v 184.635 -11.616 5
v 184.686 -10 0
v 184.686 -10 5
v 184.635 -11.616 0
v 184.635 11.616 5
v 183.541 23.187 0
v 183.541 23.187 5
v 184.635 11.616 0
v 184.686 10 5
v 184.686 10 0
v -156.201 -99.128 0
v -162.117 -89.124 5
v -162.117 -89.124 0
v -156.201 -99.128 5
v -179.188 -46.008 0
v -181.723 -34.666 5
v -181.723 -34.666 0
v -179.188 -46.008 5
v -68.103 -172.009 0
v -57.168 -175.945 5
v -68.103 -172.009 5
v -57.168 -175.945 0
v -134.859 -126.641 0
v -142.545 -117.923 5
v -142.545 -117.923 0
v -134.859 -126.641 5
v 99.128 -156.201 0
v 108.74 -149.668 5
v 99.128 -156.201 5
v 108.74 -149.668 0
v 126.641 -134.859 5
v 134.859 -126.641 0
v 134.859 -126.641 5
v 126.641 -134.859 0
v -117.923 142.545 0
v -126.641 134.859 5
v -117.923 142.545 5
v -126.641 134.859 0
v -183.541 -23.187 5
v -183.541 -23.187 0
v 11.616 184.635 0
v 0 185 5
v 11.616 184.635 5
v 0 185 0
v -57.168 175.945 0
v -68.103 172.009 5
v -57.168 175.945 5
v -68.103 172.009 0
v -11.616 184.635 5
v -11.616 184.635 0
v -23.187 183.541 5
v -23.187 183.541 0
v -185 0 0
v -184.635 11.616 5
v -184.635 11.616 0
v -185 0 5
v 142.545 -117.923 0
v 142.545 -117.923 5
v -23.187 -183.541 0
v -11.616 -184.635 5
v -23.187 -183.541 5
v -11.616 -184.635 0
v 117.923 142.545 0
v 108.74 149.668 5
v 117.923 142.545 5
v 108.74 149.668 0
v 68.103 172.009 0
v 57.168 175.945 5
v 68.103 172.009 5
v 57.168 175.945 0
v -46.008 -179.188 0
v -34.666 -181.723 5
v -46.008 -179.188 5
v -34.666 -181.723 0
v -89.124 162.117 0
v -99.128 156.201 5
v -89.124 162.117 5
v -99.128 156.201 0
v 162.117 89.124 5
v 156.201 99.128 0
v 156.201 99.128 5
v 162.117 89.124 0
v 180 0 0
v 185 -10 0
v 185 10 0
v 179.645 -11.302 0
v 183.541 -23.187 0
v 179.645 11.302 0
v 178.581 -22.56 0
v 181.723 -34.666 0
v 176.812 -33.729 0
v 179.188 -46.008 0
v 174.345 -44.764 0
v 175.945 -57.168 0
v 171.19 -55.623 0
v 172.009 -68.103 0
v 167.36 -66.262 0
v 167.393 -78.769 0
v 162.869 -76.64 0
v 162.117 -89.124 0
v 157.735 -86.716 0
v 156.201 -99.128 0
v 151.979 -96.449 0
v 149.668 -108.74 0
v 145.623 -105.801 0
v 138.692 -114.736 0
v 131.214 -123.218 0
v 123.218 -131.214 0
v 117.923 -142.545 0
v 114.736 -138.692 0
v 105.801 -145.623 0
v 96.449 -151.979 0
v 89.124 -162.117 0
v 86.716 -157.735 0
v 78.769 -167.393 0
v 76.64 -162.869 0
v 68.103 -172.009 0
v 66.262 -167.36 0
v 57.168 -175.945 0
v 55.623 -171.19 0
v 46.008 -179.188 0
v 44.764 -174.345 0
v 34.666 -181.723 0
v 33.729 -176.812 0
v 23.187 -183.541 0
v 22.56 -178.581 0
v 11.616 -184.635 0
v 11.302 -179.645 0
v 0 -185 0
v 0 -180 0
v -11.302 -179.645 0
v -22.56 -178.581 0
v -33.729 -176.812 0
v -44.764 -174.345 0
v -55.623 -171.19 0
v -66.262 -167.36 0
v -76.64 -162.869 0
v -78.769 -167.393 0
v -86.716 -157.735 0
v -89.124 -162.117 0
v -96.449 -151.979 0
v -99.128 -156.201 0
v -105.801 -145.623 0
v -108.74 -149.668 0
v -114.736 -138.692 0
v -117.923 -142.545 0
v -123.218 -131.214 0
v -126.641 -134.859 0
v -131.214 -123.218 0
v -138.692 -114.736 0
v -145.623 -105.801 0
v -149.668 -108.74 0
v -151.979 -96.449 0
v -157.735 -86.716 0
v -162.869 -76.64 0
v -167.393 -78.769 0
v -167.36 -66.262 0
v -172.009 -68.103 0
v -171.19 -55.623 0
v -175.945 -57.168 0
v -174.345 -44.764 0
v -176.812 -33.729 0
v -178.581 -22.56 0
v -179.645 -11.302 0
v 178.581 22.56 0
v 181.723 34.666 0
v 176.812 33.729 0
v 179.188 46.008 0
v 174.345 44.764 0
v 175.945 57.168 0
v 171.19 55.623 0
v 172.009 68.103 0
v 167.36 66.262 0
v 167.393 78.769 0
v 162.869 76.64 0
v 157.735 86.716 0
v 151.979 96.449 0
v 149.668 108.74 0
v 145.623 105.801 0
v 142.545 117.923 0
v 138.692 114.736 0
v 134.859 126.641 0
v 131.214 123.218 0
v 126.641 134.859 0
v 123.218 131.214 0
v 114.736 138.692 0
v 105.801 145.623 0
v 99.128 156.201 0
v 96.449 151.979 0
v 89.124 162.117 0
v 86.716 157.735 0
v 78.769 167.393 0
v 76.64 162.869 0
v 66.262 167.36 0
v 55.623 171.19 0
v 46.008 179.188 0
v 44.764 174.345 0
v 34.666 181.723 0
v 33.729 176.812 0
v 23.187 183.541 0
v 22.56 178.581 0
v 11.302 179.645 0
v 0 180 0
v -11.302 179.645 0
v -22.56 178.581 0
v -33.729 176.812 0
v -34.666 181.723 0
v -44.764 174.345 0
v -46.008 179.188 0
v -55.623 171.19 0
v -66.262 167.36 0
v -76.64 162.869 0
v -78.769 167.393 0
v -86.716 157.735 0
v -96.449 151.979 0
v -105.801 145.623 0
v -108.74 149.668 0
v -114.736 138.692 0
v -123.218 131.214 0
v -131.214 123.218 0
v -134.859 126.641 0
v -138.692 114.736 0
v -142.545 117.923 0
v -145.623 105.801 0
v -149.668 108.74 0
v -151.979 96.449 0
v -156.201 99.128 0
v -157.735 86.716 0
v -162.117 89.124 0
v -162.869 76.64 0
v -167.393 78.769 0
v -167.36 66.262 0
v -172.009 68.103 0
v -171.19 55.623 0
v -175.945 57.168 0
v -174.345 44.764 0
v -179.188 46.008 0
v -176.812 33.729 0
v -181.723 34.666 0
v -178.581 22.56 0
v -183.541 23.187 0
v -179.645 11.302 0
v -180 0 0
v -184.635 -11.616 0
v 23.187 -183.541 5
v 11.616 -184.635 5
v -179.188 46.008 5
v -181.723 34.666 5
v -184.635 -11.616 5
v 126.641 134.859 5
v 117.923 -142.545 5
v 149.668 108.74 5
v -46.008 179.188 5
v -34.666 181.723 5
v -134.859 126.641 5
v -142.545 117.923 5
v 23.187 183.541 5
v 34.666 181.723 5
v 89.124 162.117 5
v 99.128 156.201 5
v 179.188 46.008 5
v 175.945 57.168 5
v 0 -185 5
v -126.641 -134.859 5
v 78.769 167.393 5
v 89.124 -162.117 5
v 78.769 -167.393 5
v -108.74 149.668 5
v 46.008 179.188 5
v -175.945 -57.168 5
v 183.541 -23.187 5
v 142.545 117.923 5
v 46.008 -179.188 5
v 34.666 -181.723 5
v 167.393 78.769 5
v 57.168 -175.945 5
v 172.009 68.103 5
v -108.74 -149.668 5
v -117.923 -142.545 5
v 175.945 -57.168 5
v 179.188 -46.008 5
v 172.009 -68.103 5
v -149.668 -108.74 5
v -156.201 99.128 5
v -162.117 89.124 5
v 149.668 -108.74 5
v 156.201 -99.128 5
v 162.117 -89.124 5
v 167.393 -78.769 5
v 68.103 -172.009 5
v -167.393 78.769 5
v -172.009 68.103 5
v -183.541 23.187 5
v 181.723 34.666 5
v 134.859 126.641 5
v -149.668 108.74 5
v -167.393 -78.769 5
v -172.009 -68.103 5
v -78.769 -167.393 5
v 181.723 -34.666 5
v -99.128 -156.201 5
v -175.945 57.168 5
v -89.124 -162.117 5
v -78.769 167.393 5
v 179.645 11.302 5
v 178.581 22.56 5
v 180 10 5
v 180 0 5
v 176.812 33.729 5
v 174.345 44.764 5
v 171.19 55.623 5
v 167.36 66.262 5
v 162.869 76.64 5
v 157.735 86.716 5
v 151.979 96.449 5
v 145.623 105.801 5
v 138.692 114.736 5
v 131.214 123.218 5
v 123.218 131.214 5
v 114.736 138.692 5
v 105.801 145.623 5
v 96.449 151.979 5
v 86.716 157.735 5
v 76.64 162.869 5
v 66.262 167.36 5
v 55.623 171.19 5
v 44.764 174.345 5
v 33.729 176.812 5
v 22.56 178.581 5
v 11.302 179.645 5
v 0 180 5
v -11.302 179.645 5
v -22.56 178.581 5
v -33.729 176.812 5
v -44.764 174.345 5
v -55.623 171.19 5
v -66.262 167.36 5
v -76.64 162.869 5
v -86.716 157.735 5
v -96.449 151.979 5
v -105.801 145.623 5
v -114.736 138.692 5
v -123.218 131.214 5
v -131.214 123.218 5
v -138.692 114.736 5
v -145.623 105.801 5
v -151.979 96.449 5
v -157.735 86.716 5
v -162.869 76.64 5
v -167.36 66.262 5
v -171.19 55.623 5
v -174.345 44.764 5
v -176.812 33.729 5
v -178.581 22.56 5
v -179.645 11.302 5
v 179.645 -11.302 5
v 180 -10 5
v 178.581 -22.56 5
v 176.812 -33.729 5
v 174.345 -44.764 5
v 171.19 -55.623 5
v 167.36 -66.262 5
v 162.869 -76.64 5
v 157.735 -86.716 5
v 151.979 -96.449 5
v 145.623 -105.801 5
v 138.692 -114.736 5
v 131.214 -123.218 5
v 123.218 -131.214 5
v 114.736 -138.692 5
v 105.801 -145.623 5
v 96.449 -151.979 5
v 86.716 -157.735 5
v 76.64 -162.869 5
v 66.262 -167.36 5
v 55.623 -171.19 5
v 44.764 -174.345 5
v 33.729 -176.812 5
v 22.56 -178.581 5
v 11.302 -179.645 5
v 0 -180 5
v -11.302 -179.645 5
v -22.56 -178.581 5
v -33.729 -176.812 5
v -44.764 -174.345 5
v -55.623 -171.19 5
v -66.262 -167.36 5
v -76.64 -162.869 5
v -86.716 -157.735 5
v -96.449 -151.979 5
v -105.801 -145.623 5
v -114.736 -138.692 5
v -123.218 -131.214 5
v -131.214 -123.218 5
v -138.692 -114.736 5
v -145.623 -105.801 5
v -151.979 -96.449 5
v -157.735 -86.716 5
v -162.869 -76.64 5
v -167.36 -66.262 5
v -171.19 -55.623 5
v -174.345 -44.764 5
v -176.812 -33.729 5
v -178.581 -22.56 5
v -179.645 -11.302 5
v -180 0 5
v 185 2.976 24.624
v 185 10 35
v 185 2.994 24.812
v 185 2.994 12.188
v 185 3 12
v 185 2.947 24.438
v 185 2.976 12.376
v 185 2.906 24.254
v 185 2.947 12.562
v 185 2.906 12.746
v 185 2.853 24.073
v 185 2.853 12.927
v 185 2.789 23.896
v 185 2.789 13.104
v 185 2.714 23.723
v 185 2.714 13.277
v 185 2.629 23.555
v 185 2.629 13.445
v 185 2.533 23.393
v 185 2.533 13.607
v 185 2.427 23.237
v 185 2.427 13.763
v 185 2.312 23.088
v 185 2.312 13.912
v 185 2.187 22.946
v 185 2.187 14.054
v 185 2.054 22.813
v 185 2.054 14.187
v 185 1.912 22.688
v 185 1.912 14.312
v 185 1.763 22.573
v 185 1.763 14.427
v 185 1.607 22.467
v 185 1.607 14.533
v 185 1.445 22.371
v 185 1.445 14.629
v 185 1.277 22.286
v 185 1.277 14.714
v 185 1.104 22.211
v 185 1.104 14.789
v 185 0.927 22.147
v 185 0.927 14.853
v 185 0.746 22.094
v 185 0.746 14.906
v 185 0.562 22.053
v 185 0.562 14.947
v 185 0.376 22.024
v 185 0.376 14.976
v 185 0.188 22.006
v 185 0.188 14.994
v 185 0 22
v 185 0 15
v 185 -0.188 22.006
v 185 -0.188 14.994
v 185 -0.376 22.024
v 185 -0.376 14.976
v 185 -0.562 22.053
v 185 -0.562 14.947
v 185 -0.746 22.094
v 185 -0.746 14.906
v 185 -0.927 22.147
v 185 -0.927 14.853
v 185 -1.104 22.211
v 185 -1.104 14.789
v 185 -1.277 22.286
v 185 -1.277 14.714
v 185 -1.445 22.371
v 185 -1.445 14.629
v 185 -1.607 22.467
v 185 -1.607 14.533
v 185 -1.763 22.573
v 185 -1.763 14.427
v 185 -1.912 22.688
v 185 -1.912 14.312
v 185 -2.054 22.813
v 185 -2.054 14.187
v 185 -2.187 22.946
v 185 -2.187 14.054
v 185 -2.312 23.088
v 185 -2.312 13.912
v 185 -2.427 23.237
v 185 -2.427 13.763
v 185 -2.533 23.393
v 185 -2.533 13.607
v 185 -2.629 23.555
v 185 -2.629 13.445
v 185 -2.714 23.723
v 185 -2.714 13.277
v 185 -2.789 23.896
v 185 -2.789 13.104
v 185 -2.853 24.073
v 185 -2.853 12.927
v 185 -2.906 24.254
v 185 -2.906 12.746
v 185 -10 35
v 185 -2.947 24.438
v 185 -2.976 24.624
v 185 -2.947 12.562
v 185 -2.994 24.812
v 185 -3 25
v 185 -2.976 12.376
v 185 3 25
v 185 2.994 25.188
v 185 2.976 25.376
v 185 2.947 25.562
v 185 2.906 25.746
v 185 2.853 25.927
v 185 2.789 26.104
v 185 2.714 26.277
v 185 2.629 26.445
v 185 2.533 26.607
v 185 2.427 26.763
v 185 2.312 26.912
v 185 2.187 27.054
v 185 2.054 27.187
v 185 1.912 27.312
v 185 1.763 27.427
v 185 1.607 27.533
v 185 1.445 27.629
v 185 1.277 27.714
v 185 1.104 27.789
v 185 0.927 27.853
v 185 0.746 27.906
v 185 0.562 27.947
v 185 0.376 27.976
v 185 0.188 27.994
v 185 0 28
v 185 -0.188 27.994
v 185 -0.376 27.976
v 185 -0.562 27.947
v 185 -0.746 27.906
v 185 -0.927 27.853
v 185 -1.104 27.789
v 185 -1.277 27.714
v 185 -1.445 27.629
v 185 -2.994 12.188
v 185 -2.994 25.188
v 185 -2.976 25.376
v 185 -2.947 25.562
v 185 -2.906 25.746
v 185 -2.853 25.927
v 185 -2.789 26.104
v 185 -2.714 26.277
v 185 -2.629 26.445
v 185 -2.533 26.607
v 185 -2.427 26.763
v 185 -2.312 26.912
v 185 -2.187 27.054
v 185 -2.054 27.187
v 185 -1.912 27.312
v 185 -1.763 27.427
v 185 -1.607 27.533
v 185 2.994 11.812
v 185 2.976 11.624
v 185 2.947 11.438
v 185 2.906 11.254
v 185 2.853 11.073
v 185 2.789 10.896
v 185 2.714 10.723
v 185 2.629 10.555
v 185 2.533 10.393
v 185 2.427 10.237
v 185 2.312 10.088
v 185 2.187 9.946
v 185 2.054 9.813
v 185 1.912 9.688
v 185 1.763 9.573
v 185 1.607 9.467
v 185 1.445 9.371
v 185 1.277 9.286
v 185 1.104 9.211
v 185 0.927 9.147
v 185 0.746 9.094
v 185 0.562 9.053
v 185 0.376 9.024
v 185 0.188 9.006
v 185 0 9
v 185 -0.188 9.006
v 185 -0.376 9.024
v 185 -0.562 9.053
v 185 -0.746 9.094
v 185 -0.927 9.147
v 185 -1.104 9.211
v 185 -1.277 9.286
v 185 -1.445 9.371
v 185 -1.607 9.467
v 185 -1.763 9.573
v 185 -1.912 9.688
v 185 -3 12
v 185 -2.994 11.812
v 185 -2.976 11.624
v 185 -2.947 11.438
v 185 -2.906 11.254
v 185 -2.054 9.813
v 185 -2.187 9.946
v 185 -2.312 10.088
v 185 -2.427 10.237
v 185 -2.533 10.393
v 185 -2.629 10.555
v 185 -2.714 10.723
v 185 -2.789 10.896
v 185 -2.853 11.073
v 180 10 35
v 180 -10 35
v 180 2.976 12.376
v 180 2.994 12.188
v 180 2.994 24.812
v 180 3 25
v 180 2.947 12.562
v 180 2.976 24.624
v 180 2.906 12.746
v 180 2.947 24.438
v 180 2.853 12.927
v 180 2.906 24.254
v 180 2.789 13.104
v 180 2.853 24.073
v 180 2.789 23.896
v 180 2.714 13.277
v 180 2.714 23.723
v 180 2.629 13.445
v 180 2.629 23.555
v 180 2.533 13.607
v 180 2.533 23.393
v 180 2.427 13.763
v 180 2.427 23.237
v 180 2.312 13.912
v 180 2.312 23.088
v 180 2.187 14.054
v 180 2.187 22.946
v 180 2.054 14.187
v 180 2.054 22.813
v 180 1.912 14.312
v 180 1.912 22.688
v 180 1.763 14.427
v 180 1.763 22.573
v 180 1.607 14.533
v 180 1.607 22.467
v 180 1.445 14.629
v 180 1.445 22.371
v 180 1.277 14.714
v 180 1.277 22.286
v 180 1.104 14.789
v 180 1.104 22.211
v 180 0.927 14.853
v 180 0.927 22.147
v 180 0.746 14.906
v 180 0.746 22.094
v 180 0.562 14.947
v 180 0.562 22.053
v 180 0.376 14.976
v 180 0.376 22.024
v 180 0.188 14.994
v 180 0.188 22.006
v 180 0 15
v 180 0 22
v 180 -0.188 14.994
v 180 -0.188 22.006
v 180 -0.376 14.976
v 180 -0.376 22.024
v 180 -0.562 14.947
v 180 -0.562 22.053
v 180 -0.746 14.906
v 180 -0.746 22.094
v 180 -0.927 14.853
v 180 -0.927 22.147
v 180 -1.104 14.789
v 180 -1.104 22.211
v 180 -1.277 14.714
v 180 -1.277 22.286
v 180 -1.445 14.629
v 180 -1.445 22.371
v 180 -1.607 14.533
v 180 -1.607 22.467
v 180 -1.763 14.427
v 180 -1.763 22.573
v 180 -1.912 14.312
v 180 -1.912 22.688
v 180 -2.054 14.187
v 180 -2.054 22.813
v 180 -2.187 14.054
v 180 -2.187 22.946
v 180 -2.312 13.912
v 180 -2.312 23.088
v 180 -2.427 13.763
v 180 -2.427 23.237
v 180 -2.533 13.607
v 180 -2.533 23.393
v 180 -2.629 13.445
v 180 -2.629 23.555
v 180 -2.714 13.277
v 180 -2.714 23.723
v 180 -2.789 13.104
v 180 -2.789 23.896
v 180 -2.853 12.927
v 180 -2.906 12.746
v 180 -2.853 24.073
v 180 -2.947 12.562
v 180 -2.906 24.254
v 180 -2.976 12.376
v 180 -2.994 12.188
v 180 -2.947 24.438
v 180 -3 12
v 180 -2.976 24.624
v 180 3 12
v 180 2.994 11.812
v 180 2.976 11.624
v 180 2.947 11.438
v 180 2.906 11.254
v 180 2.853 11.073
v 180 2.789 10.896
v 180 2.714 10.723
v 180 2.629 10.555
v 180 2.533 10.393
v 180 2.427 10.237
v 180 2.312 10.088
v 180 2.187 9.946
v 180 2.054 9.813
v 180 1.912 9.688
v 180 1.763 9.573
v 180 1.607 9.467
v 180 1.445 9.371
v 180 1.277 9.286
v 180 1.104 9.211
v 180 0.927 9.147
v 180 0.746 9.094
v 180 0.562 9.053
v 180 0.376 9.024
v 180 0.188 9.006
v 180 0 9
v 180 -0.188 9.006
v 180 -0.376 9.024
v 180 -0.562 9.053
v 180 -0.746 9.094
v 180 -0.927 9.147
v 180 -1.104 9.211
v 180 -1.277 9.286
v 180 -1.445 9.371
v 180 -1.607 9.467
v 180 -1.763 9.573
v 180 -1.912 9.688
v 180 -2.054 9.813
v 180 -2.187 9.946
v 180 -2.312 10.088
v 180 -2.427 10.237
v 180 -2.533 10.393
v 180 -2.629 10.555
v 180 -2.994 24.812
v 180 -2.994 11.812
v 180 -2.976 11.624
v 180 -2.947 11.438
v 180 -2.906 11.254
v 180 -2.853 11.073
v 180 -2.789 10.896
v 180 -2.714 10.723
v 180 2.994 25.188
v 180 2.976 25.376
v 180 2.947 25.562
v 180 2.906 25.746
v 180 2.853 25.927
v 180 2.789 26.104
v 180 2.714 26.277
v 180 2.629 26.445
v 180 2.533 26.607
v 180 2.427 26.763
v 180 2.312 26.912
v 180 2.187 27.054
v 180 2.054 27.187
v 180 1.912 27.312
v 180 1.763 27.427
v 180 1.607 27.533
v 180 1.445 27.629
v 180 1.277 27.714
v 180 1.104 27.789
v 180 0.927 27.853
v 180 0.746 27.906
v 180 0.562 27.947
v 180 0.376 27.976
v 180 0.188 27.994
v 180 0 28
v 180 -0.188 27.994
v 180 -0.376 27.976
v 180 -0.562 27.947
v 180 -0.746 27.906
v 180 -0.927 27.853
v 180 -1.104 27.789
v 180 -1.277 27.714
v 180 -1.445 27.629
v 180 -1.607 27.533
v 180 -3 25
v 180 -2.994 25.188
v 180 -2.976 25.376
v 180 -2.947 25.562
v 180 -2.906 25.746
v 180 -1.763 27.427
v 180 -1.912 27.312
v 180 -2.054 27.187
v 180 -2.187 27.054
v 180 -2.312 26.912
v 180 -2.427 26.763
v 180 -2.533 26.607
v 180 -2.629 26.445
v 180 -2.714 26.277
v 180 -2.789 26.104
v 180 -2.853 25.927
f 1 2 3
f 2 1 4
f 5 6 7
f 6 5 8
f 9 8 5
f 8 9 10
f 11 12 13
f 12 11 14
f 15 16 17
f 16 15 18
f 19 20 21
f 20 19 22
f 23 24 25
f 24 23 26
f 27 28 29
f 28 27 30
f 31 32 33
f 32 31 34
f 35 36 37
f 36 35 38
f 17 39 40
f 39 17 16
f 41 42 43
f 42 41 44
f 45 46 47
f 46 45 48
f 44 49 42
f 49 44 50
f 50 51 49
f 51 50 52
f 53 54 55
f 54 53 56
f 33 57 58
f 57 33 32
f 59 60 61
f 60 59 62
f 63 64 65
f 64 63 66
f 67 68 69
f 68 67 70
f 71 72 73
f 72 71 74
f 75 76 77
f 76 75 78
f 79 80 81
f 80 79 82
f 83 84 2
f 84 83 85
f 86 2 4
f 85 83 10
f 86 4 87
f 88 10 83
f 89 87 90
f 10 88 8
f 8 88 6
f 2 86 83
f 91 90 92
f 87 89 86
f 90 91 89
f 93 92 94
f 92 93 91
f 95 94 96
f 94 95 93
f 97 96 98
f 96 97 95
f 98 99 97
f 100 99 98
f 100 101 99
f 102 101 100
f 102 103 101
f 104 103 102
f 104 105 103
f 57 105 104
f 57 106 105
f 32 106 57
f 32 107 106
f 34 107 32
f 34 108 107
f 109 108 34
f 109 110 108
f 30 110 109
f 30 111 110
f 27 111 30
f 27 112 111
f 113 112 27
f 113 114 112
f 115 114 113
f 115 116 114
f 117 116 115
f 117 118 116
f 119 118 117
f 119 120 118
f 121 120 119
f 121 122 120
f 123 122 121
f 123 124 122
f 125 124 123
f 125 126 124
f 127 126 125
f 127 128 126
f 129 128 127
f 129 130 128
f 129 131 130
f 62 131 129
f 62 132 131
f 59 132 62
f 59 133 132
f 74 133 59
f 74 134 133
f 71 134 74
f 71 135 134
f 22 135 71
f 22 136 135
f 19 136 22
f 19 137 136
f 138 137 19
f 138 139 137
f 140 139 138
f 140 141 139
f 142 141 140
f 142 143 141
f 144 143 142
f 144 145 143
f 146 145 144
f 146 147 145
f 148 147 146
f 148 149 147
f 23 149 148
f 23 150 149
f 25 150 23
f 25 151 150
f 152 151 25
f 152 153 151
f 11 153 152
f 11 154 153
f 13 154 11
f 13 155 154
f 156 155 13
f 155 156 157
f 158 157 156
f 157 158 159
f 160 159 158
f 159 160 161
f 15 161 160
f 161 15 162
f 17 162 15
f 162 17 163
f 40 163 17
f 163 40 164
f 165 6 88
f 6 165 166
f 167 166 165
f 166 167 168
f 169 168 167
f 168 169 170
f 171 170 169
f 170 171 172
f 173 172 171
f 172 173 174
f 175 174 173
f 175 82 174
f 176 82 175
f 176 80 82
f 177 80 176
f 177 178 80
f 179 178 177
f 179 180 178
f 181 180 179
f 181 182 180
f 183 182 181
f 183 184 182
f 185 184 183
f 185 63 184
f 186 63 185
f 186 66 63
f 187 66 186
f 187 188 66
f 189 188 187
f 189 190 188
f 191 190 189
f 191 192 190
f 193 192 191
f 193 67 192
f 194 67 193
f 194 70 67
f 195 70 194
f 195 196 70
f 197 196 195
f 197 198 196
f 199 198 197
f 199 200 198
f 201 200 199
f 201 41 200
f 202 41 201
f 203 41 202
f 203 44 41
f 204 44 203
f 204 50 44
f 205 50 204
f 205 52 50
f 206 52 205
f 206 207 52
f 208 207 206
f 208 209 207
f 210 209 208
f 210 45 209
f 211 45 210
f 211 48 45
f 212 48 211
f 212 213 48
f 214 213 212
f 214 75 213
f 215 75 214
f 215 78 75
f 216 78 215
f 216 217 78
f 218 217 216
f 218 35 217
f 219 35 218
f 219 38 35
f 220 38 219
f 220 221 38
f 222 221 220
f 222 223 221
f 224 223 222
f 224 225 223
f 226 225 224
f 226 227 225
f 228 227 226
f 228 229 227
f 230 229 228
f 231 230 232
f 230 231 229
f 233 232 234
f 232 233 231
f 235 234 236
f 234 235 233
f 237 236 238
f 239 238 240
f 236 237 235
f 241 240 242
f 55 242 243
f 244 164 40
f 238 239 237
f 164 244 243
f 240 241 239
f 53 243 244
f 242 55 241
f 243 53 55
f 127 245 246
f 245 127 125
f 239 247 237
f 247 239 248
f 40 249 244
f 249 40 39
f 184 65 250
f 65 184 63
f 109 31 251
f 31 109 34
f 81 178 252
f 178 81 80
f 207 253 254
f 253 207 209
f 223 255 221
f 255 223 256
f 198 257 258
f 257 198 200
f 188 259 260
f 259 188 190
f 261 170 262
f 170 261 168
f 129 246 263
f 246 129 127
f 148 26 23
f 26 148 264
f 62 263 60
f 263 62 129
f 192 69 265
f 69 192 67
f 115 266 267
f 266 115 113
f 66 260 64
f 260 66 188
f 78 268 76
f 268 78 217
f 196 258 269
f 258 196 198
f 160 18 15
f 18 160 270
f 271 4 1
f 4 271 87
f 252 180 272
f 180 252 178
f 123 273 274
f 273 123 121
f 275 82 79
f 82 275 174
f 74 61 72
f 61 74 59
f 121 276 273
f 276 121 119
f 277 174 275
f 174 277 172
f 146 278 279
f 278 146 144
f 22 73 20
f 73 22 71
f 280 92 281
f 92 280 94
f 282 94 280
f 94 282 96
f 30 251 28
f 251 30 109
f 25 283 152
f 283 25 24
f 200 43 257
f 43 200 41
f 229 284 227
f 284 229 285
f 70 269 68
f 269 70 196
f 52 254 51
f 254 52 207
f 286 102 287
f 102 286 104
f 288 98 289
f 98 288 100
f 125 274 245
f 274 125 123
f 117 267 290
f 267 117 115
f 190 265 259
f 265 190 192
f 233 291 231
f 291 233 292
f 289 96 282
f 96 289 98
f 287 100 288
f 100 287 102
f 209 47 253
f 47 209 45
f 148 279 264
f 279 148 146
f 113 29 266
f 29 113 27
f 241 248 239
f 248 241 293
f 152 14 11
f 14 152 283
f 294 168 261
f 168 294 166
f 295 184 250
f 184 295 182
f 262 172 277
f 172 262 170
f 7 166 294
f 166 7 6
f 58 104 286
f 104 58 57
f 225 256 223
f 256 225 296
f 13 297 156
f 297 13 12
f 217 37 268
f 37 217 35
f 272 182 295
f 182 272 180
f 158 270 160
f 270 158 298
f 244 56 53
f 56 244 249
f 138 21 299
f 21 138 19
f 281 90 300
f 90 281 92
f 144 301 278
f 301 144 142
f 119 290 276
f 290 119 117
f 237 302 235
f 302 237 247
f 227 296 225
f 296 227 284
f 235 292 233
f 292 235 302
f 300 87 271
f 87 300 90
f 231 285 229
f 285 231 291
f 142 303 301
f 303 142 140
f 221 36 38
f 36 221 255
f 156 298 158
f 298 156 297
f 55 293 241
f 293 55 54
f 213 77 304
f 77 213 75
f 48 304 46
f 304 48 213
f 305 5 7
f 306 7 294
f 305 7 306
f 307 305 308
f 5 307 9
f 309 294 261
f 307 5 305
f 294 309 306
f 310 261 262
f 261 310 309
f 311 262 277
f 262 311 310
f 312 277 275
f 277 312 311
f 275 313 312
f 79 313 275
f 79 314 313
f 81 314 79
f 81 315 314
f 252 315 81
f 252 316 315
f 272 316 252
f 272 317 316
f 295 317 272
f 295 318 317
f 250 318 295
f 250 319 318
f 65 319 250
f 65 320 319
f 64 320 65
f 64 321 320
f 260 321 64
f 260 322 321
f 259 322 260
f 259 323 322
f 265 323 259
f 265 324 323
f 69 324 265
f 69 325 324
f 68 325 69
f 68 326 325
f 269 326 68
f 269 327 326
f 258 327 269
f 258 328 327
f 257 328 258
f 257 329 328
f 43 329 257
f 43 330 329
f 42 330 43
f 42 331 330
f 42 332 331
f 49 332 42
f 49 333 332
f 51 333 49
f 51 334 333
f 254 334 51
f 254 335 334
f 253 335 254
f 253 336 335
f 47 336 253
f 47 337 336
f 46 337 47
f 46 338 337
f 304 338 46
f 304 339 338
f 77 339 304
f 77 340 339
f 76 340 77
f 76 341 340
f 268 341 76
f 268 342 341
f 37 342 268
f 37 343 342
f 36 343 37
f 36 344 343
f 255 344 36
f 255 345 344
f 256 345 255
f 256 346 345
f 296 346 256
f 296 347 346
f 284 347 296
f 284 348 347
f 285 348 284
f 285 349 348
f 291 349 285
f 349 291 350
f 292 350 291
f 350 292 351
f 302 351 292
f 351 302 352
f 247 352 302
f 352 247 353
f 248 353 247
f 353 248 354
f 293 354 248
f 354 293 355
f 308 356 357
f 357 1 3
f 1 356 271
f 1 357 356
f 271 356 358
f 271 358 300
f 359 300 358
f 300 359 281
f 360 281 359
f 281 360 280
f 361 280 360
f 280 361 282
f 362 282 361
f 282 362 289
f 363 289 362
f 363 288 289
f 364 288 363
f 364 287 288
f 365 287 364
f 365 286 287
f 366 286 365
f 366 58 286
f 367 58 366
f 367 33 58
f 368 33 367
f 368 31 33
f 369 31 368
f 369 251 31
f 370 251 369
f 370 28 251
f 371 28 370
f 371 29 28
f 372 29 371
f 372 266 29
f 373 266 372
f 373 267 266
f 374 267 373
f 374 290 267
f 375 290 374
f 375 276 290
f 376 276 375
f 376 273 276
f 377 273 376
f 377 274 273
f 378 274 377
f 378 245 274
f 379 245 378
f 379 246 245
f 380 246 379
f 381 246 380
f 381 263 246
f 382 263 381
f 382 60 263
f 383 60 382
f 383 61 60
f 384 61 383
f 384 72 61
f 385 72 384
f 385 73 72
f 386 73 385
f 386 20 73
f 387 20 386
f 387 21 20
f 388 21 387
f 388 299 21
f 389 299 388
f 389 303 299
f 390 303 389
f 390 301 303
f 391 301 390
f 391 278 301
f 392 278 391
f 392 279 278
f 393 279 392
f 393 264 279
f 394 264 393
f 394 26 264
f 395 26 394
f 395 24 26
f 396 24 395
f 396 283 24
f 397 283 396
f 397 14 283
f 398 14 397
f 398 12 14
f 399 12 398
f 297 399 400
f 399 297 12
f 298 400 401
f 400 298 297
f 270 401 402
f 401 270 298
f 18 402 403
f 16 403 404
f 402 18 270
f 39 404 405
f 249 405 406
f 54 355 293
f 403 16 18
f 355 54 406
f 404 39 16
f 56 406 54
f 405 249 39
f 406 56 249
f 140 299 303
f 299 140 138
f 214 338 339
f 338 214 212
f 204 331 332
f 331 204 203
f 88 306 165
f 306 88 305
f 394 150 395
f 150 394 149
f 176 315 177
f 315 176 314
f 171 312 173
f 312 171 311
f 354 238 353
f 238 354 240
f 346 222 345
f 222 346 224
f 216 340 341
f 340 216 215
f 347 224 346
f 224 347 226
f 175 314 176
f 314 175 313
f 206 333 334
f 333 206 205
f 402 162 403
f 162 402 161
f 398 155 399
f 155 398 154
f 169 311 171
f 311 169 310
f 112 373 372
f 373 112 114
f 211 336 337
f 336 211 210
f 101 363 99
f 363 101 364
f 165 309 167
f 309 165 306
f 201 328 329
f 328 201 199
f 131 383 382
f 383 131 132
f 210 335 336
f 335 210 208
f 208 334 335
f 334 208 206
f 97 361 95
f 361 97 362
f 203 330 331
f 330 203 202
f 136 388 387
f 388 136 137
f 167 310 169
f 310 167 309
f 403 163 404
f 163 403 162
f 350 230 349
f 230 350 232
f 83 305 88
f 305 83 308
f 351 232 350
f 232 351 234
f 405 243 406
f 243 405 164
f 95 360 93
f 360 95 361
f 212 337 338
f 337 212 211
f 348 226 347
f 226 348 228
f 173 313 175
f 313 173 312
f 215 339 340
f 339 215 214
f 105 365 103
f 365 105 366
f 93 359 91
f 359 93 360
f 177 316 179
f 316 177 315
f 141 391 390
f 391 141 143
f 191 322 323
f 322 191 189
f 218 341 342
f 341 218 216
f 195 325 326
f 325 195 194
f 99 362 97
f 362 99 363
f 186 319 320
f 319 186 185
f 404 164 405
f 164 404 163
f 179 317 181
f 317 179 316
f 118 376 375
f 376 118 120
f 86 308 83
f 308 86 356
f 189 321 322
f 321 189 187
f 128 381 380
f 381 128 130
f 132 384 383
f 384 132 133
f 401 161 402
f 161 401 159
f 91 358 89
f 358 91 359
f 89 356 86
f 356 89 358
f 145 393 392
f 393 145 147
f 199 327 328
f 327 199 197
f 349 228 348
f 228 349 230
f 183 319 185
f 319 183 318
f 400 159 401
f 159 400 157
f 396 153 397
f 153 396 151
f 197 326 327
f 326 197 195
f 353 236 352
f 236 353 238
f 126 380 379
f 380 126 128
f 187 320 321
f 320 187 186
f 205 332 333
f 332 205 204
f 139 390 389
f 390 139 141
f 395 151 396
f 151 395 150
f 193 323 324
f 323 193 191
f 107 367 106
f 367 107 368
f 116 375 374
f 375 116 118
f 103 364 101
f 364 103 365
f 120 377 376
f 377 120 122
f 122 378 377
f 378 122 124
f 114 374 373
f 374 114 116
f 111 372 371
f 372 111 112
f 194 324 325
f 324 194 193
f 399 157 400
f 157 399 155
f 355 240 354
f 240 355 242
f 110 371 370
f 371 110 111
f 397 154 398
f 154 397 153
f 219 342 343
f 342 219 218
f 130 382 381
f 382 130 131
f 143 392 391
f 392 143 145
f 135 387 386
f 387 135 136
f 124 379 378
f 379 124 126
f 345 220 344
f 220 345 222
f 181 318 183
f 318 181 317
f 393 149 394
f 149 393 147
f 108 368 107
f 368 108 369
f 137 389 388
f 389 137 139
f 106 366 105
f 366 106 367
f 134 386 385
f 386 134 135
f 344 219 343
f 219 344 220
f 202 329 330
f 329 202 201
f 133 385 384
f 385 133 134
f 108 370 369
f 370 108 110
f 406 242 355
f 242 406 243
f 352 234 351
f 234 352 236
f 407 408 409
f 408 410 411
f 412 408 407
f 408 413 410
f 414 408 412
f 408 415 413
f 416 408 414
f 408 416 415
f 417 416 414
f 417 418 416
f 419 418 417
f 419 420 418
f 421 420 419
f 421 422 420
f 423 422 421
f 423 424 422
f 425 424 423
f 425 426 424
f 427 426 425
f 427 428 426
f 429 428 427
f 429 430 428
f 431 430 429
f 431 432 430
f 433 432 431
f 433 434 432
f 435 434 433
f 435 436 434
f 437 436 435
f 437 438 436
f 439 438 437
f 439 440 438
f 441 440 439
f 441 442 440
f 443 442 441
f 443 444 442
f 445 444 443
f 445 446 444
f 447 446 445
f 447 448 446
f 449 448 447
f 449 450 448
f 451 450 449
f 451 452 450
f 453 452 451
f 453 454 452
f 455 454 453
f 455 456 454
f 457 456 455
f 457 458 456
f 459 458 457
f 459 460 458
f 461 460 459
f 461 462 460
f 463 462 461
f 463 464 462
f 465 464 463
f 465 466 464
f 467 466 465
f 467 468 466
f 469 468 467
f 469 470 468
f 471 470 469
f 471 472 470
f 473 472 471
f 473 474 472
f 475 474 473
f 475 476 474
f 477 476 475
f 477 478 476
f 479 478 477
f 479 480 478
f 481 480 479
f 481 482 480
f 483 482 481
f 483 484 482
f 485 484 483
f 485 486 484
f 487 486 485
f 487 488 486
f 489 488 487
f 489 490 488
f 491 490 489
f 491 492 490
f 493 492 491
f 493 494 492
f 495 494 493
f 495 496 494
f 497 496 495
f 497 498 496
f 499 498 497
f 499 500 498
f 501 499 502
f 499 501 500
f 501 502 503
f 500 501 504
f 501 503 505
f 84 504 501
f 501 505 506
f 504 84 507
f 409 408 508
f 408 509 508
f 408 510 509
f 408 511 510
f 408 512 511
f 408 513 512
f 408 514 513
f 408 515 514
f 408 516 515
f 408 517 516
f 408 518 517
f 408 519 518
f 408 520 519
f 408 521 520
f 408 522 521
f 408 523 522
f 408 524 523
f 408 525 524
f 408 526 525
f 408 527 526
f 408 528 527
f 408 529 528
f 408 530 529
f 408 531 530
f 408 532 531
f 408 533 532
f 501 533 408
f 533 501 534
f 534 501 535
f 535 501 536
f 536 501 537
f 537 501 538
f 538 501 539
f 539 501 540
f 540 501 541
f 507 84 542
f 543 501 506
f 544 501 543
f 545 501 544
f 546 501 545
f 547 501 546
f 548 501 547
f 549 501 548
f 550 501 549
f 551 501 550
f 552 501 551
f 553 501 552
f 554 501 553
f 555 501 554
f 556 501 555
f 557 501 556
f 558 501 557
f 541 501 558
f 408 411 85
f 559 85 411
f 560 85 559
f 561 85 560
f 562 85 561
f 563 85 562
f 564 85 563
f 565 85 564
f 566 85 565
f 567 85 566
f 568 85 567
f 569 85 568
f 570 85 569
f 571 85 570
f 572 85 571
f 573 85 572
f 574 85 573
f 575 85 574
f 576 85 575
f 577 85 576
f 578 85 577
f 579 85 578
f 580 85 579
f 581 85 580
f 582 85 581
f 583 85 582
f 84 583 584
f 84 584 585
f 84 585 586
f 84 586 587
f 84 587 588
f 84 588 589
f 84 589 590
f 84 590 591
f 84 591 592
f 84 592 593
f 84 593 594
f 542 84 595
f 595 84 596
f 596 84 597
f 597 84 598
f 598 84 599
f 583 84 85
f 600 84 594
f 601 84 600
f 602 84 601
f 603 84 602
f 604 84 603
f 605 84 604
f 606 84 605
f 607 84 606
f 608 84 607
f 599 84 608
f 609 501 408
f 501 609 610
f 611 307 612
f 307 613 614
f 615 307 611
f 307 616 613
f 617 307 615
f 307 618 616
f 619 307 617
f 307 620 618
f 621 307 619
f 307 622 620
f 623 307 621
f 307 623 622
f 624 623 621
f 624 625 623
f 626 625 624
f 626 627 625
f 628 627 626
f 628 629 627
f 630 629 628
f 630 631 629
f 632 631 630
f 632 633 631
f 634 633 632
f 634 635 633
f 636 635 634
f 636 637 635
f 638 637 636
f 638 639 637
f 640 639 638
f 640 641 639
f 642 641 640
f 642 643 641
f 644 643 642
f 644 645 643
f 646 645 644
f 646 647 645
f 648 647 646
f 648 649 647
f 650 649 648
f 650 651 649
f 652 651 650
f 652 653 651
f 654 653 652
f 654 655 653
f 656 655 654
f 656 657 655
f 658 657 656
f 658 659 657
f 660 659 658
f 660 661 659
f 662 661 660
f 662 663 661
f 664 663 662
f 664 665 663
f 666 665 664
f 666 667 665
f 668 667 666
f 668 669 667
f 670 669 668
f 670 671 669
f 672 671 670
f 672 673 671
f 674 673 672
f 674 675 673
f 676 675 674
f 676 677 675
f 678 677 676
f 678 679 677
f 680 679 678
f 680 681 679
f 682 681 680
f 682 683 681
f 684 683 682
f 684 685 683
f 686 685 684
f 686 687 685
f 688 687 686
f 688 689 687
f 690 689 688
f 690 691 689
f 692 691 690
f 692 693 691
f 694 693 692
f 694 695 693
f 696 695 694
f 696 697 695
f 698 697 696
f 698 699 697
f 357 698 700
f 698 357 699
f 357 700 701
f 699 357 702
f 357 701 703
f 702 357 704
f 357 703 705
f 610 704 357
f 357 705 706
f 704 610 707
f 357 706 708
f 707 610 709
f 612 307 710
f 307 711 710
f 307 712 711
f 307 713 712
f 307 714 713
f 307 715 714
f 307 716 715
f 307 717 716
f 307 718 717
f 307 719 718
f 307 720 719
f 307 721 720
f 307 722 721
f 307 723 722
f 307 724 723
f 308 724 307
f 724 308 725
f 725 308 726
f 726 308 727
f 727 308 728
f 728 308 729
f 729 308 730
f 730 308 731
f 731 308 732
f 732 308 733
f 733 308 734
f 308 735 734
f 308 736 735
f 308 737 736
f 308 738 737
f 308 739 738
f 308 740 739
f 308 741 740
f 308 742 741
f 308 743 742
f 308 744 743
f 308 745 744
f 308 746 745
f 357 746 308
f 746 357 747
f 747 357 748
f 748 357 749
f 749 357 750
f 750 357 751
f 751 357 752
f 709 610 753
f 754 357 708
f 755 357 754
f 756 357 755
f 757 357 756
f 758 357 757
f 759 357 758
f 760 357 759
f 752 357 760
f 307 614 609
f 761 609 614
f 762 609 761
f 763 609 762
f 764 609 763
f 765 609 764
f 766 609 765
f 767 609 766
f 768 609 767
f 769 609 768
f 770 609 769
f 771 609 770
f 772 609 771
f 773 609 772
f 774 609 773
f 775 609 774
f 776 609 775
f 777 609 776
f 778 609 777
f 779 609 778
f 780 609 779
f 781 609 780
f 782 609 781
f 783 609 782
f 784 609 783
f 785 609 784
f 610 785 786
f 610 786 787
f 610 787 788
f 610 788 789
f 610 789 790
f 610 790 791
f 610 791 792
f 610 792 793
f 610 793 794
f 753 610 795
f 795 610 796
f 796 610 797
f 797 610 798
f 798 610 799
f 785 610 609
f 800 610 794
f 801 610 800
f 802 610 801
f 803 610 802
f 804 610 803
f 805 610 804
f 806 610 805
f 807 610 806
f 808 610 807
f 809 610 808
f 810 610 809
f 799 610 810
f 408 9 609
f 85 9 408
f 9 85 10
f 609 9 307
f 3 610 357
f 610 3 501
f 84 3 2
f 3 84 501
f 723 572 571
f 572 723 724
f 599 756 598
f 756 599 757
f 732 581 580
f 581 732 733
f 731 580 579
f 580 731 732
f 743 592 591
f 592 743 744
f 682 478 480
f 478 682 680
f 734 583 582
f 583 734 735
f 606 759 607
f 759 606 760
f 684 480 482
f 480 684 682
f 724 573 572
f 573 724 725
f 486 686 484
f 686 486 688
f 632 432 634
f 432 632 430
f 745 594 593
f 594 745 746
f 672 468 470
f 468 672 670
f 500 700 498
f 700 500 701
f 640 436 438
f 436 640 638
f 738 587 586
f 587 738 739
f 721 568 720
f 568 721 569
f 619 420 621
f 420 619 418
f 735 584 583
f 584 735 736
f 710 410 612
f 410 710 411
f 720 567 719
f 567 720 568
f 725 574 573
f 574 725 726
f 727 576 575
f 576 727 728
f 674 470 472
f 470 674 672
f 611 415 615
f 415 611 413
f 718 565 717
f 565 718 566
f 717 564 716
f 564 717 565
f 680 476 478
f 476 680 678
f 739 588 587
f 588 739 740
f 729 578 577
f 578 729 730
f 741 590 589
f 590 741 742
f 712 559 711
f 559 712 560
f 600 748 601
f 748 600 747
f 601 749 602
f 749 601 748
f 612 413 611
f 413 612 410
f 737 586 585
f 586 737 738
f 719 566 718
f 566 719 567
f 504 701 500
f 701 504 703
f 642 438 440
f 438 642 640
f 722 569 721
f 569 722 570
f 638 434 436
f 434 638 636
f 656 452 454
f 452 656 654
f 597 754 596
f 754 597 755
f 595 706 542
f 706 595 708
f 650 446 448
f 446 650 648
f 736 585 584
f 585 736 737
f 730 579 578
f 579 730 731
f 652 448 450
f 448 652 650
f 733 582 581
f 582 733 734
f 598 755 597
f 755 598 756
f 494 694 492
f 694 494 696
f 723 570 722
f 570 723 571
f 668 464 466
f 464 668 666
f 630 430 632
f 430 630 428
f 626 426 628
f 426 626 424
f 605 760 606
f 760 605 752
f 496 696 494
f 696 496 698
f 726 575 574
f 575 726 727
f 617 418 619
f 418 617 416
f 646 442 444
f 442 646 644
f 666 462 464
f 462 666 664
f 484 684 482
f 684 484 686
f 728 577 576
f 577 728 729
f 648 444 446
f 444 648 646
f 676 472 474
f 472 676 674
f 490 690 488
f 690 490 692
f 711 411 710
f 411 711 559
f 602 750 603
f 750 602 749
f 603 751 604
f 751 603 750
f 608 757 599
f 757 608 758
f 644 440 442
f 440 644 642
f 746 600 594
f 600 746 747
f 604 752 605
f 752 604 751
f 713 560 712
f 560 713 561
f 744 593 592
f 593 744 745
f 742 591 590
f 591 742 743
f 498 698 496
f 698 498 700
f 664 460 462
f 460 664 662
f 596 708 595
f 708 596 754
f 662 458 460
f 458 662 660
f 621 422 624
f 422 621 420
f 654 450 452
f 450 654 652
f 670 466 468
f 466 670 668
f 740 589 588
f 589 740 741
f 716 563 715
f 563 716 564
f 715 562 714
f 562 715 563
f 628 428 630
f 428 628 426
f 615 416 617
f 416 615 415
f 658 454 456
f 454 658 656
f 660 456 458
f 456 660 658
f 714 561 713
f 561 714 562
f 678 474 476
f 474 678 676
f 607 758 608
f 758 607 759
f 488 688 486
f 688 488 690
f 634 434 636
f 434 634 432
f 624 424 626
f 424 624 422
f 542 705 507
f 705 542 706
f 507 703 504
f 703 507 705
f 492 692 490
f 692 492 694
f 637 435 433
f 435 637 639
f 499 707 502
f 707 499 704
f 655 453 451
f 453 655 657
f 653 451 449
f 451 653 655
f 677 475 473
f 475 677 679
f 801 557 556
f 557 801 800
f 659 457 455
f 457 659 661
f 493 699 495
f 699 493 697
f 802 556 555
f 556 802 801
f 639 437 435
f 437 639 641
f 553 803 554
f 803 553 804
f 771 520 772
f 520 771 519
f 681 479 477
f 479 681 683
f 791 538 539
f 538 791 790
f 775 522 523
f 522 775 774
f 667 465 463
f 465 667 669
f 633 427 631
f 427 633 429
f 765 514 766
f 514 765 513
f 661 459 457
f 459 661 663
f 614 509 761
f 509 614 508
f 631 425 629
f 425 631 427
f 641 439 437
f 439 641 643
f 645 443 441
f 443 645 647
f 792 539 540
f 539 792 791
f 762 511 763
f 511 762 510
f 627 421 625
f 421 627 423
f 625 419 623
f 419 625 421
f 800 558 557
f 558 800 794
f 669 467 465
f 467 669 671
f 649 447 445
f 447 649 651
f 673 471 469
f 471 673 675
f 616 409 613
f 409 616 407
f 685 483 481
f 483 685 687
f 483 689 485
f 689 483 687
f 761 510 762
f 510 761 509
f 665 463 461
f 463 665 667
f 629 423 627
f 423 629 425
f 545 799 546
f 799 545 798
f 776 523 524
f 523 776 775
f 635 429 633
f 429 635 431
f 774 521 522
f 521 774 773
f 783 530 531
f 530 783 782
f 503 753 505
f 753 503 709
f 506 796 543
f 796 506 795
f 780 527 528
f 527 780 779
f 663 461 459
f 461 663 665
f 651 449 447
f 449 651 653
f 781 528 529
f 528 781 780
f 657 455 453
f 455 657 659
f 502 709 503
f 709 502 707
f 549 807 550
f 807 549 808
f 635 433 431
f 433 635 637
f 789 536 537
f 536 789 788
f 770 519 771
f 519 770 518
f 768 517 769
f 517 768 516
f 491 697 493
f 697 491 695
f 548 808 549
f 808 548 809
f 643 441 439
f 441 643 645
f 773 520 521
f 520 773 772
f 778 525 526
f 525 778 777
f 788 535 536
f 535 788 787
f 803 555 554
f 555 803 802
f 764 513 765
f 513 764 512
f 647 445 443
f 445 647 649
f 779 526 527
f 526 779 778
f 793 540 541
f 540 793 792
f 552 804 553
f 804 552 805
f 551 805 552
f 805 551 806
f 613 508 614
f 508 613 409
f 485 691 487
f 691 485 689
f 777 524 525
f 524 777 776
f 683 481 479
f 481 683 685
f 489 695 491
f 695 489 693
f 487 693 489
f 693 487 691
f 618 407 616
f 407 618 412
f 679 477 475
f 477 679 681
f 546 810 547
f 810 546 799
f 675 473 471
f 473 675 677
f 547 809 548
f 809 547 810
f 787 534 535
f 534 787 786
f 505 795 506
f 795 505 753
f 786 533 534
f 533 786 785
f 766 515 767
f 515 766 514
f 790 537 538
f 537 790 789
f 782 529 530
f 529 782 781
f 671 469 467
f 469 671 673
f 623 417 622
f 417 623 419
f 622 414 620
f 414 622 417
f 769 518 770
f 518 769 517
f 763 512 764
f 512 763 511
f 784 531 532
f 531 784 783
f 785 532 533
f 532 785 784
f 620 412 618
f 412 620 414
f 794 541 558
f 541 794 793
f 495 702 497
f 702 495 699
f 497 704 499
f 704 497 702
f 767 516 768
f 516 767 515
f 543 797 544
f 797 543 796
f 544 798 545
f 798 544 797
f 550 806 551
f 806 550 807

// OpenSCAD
circle_width = 5;
circle_radius = 180;
handle_width = 20;
handle_height = 35;
handle_depth = 5;
screw_radius = 3;
screw_1_height = 12;
screw_2_height = 25;
$fn = 100;

difference() {
    cylinder(h = circle_width, r = circle_radius + circle_width);
    translate([0,0,-1]) {
        cylinder(h = circle_width+2, r = circle_radius);
    }
};
translate([circle_radius, -handle_width/2,0]) {
    difference() {
        cube([handle_depth, handle_width, handle_height]);
        translate([-1, handle_width/2, screw_1_height]) {
            rotate([0,90,0]) {
                cylinder(h = handle_depth+2, r = screw_radius);
            }
        }
        translate([-1, handle_width/2, screw_2_height]) {
            rotate([0,90,0]) {
                cylinder(h = handle_depth+2, r = screw_radius);
            }
        }
    }

}
